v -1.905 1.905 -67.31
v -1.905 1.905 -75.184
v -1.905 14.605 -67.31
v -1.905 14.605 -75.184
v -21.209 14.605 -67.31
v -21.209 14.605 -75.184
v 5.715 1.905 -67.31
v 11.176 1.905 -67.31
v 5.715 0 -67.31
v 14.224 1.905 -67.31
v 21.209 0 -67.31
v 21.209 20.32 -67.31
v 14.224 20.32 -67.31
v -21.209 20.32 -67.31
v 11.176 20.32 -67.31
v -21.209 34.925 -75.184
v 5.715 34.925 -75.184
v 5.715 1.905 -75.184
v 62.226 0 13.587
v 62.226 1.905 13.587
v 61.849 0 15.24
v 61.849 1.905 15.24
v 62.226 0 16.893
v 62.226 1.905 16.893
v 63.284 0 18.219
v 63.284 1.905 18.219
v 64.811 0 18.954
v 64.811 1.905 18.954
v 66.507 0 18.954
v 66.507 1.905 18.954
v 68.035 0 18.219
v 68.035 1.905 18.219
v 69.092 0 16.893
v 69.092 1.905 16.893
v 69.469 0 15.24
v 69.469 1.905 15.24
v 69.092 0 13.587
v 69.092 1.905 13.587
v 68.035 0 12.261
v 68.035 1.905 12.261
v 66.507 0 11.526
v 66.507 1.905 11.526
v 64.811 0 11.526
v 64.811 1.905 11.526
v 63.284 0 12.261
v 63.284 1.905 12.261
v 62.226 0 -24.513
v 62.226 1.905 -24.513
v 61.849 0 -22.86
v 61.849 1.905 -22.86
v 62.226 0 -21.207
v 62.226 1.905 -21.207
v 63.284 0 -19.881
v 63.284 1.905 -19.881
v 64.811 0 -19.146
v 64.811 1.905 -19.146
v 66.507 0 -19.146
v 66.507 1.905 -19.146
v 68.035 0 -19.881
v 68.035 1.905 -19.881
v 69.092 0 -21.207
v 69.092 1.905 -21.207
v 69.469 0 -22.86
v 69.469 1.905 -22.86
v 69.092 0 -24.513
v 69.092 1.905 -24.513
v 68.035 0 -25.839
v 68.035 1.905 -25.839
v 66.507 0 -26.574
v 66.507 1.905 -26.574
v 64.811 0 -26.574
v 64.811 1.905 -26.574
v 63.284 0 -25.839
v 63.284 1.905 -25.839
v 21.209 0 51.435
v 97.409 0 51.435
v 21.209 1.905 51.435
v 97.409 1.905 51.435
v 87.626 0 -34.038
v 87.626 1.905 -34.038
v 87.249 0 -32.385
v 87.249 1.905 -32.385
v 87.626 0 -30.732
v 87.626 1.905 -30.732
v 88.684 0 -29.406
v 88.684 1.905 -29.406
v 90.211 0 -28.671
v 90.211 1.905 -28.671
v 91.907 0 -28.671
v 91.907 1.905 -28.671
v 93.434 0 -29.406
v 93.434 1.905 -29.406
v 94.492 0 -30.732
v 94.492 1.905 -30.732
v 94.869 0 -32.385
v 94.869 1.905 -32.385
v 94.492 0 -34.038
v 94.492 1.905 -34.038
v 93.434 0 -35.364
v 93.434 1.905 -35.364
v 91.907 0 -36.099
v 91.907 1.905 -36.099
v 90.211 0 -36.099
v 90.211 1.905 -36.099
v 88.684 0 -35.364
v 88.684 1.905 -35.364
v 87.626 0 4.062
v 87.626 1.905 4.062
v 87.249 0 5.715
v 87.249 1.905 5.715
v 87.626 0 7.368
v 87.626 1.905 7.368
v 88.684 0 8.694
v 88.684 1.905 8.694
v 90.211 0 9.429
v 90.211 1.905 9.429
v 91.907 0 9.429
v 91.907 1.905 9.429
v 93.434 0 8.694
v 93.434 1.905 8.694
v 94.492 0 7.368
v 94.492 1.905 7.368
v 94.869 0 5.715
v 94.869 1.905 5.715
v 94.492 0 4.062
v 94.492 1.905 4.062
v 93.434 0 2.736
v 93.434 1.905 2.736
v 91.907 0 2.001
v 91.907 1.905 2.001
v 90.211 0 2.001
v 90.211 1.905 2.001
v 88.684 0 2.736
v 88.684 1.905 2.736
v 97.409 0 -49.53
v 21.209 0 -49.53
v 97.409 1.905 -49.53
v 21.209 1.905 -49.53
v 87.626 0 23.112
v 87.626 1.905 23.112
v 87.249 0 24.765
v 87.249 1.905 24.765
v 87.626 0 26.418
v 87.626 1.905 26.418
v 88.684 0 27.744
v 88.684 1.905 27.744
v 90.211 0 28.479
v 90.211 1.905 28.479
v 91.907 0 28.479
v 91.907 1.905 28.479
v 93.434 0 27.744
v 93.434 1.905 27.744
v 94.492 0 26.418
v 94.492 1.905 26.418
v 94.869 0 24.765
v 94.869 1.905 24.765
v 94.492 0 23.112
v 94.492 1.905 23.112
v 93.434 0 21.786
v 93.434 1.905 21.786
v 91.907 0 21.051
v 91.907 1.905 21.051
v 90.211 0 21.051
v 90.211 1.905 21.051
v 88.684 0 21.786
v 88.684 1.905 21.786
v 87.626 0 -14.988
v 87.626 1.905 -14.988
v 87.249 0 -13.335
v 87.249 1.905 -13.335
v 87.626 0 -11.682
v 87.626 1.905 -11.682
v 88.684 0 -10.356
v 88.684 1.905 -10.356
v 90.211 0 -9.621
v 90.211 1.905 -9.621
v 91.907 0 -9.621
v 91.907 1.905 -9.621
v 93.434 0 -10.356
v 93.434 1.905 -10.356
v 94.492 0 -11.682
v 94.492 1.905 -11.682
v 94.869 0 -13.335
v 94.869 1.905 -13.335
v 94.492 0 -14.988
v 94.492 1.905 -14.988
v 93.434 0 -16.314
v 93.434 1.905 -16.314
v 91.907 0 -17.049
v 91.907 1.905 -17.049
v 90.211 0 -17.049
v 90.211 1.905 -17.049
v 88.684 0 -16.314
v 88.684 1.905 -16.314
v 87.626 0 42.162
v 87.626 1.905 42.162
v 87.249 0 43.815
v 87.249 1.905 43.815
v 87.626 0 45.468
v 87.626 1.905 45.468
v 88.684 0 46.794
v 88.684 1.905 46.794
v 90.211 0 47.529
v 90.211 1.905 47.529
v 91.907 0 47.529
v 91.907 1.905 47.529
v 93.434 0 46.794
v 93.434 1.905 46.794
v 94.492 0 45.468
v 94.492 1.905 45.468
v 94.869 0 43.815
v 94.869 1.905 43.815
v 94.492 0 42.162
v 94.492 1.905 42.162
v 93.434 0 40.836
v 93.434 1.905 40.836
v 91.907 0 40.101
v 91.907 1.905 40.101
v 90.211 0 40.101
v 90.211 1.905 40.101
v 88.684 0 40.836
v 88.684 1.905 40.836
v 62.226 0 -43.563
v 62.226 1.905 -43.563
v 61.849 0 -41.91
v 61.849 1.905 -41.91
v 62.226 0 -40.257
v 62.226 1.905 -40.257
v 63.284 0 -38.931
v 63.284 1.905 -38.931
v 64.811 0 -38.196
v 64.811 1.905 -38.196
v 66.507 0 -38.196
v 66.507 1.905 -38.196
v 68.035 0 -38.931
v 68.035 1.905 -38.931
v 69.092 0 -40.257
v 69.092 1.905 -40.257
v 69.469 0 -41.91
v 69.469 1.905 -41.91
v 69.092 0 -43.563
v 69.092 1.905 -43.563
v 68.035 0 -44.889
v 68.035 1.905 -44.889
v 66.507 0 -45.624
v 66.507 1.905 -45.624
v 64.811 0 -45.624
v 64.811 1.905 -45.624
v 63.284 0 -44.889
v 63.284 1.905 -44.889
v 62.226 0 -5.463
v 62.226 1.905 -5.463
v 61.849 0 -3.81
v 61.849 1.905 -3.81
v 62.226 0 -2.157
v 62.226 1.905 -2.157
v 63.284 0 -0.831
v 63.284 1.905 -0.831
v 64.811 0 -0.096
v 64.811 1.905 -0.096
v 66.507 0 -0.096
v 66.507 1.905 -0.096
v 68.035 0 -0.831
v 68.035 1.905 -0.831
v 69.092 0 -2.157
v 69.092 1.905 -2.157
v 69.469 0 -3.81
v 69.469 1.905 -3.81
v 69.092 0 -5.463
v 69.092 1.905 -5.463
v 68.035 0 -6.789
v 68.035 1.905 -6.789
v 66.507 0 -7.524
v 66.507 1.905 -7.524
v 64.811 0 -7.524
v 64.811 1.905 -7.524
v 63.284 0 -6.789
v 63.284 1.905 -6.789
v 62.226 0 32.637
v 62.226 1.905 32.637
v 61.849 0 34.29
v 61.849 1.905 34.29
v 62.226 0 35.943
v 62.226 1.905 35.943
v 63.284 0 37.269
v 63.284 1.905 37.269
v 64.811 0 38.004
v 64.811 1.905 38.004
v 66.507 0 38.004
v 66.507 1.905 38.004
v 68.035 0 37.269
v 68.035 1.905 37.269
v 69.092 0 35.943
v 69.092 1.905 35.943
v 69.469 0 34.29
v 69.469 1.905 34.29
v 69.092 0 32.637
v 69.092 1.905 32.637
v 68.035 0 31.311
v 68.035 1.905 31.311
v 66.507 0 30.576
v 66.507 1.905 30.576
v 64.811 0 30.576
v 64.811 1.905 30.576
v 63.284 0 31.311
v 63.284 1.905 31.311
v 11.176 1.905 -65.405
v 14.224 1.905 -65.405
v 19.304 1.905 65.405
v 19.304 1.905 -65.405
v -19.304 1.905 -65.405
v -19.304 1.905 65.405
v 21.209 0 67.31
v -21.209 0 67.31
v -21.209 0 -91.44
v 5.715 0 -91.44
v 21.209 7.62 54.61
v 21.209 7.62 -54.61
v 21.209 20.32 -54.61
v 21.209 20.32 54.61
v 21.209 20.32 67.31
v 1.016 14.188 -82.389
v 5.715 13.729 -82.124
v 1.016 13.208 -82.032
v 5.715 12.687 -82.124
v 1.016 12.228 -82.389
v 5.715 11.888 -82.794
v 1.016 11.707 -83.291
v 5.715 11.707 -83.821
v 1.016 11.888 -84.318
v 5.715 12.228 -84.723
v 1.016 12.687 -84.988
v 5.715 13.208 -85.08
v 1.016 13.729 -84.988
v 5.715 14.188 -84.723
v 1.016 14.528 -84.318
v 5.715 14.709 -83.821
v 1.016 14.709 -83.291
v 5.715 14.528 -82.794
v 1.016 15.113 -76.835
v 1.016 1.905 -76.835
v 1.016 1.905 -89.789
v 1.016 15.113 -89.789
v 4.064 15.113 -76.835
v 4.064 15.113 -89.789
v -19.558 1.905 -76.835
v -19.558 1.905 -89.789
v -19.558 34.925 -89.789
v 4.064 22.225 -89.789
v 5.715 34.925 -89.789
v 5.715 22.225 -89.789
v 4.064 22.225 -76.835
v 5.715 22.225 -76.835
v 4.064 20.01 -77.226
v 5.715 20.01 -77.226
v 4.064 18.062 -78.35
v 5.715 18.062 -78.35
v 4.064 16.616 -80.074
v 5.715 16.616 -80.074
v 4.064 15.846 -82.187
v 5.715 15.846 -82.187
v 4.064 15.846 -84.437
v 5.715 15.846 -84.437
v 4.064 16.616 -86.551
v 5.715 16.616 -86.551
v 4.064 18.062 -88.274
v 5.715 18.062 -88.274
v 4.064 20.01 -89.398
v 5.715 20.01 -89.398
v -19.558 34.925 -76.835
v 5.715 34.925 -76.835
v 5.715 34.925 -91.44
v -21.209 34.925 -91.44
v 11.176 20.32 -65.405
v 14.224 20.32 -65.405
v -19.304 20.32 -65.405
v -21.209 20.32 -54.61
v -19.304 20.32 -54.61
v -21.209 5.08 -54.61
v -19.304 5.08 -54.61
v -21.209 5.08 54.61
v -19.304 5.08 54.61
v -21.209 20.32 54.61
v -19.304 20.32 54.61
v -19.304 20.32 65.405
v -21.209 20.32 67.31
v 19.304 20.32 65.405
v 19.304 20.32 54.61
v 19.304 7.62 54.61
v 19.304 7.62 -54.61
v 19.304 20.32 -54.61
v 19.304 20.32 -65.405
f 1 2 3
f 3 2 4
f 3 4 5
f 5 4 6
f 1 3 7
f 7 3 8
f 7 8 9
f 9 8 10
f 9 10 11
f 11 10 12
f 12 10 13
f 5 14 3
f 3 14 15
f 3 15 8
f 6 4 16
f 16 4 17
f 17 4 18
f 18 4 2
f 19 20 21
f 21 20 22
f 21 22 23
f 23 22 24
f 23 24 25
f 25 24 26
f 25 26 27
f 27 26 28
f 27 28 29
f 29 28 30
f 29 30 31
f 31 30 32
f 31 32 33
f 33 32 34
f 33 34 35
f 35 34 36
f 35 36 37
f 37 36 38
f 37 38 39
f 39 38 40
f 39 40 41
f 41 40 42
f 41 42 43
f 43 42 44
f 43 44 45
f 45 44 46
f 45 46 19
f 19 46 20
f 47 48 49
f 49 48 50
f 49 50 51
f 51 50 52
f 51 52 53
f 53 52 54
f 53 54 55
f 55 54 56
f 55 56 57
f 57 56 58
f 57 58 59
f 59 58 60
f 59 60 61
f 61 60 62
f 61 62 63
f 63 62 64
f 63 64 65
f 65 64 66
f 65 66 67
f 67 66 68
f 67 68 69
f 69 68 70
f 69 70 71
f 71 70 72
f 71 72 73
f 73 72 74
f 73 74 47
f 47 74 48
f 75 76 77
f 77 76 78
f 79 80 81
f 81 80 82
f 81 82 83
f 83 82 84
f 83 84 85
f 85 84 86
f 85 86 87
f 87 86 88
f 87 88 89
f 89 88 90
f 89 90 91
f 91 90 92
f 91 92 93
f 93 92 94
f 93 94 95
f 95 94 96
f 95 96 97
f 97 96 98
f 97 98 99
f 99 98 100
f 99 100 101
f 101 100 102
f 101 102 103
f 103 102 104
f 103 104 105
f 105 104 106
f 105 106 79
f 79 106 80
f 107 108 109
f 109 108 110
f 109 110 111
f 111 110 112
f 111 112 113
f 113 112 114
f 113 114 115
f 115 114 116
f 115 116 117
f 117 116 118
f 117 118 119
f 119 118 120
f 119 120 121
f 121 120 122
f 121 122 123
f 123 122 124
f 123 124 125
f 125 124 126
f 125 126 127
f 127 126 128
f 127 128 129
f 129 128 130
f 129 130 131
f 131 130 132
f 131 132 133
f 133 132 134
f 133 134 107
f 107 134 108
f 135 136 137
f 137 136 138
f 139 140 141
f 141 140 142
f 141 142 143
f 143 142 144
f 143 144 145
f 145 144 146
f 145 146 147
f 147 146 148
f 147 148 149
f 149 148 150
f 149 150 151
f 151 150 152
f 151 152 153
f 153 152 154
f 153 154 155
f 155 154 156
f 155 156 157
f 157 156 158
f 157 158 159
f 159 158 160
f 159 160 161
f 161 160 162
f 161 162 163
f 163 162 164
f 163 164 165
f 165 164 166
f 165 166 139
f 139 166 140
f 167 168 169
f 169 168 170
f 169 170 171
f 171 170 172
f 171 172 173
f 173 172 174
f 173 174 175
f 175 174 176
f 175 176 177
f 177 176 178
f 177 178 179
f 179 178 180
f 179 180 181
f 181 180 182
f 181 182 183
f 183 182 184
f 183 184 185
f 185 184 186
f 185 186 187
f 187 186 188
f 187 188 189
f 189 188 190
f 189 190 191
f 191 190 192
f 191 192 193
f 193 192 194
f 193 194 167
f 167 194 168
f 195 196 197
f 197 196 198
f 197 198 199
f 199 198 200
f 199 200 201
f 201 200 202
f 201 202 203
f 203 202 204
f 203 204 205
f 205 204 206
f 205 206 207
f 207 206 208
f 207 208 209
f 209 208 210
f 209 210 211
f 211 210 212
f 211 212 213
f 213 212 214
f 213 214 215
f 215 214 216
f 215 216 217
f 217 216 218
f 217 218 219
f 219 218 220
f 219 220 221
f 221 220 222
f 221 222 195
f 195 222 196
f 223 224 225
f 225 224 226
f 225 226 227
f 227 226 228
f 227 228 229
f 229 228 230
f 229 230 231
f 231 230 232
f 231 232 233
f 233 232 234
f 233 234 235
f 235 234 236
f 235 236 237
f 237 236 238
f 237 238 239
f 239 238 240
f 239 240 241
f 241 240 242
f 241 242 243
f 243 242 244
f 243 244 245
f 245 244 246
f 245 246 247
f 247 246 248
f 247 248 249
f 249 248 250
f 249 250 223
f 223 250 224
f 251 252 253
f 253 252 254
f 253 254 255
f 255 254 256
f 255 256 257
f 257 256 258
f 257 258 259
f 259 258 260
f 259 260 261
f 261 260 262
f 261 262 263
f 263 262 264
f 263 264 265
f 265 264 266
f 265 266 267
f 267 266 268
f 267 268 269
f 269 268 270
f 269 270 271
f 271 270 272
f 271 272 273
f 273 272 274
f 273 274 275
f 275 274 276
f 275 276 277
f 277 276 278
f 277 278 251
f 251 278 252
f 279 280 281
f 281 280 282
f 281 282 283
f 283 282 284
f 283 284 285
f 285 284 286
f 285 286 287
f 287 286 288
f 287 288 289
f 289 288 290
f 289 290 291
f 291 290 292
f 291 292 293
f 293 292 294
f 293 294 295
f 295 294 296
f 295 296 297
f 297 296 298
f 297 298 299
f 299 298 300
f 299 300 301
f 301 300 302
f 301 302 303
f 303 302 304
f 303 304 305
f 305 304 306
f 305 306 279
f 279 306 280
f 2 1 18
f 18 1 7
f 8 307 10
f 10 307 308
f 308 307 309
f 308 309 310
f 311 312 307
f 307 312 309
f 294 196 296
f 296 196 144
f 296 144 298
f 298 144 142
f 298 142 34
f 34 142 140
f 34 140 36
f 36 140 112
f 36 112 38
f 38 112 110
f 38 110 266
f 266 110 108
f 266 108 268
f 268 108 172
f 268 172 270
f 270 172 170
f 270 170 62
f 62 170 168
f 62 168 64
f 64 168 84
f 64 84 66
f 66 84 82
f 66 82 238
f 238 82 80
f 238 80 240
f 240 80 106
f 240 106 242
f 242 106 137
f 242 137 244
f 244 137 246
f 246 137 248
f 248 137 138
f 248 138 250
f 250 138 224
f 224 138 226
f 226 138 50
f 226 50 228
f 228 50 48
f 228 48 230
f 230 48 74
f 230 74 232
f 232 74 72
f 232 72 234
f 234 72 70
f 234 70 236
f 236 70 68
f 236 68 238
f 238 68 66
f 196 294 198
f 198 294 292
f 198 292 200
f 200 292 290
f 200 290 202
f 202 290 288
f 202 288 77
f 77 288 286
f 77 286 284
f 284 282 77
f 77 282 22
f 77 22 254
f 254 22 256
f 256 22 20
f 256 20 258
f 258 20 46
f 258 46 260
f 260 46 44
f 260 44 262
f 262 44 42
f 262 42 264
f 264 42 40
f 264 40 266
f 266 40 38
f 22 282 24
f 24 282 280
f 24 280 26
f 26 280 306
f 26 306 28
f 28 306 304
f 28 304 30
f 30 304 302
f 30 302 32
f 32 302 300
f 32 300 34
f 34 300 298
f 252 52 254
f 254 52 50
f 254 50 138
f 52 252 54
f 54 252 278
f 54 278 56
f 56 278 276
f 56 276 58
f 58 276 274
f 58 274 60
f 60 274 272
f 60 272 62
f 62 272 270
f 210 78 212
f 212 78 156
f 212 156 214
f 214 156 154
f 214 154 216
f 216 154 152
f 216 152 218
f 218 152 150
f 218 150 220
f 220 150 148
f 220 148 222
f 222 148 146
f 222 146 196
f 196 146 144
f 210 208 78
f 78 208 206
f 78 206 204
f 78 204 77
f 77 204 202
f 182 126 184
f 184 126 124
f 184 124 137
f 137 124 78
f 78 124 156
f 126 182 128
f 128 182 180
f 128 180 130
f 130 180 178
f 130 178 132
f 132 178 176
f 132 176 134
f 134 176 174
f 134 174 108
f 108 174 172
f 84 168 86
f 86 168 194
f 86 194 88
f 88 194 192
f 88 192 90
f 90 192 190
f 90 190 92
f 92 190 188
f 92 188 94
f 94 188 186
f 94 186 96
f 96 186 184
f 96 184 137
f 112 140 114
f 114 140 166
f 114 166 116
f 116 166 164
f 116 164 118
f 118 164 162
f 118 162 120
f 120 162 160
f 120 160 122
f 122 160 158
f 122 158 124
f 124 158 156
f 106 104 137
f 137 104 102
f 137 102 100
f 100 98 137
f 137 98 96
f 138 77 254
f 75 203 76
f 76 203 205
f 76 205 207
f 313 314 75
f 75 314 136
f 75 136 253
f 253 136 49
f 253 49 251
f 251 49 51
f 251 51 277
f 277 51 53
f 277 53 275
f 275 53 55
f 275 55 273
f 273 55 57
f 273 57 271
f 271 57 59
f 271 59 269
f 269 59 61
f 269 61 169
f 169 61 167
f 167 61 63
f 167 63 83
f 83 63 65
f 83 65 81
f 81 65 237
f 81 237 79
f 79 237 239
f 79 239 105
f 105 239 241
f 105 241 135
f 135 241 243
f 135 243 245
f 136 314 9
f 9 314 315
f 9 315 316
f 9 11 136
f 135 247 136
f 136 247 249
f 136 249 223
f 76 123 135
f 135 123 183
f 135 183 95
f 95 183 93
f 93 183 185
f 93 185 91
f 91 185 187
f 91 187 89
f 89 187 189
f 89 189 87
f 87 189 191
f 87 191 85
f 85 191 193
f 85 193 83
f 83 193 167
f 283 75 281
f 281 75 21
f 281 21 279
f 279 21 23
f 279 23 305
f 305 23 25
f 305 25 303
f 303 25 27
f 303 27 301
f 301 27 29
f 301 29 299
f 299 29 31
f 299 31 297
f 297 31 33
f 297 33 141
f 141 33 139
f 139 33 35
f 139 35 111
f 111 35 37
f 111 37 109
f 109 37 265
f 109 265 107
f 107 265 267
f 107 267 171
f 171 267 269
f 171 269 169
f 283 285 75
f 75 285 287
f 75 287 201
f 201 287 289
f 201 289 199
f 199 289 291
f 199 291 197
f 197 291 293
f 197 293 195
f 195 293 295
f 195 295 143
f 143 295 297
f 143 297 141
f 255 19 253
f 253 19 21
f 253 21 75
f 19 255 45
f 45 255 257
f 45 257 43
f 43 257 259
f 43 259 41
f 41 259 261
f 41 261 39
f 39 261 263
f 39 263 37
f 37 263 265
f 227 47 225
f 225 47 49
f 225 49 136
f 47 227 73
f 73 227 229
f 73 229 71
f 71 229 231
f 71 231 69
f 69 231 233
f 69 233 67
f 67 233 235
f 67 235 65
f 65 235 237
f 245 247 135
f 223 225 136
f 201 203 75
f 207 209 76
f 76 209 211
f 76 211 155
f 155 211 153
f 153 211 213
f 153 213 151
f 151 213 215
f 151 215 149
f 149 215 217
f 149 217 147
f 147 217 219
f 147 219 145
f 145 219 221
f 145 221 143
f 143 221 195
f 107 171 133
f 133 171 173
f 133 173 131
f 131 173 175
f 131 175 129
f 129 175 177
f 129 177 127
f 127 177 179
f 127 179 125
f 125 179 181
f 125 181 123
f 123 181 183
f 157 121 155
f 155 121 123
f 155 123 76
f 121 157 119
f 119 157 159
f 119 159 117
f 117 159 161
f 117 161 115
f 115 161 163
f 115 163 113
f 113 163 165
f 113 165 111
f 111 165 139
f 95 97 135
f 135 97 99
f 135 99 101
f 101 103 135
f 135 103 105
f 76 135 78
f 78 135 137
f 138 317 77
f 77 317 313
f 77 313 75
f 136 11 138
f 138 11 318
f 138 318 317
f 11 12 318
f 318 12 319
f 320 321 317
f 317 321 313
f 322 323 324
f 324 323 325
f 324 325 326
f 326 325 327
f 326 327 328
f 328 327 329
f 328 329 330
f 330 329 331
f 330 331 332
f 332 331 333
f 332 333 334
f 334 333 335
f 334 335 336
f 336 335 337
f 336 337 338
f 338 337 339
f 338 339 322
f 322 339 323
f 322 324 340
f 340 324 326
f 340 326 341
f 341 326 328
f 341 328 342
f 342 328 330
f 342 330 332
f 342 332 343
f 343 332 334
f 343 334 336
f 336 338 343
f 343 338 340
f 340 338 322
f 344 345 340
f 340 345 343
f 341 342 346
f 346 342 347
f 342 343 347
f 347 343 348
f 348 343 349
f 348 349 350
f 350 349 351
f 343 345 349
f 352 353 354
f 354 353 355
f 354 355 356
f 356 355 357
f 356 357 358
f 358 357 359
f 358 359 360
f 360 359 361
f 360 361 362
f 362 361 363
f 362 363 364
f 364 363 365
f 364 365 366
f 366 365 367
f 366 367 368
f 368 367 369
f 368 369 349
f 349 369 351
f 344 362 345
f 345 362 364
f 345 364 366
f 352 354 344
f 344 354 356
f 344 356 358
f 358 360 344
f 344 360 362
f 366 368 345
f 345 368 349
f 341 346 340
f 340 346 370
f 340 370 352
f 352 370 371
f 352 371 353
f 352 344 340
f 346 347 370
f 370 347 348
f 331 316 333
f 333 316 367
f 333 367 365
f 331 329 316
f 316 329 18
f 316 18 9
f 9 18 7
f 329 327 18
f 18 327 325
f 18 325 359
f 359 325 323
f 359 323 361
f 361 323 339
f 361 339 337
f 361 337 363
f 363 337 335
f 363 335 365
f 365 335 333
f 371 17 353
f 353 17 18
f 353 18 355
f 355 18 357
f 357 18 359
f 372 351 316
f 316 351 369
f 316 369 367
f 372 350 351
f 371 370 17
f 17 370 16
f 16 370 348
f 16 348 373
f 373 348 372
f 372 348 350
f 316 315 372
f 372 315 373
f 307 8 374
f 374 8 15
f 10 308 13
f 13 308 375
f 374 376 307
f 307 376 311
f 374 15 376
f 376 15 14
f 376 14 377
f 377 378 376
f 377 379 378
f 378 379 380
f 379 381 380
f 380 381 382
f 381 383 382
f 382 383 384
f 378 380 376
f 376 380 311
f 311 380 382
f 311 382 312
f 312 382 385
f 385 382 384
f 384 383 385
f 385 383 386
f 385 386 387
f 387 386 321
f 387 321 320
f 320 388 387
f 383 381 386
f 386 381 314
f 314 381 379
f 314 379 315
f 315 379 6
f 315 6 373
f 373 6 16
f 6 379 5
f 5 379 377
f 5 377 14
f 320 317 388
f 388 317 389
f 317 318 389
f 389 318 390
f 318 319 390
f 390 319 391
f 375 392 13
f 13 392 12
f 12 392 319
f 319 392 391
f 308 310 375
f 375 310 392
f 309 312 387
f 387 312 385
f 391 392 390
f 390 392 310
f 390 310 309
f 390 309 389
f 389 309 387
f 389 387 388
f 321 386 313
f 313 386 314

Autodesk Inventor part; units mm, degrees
ref_plane "YZ Plane" through (0, 0, 0) normal (1, 0, 0) x (0, 1, 0)
ref_plane "XZ Plane" through (0, 0, 0) normal (0, 1, 0) x (-1, 0, 0)
ref_plane "XY Plane" through (0, 0, 0) normal (0, 0, 1) x (1, 0, 0)
sketch "Sketch1" plane through (0, 0, 0) normal (0, 1, 0) x (-1, 0, 0)
  line L0 (19.304, 65.405) -> (-19.304, 65.405)
  line L1 (-19.304, 65.405) -> (-19.304, -65.405)
  line L2 (-19.304, -65.405) -> (19.304, -65.405)
  line L3 (19.304, -65.405) -> (19.304, 65.405)
  line L4 (19.304, 65.405) -> (-19.304, -65.405) construction
  line L5 (-19.304, 65.405) -> (19.304, -65.405) construction
  line L6 (21.209, 67.31) -> (-21.209, 67.31)
  line L7 (-21.209, 67.31) -> (-21.209, -67.31)
  line L8 (-21.209, -67.31) -> (21.209, -67.31)
  line L9 (21.209, -67.31) -> (21.209, 67.31)
  point P0 (0, 0)
  dimension "d0" = 38.608
  dimension "d1" = 130.81
  dimension "d2" = 1.905
extrude "Extrusion1" add sketch "Sketch1" along normal blind 20.32
extrude "Extrusion2" add sketch "Sketch1" along normal blind 1.905 contours L3 L2 L1 L0
sketch "Sketch2" plane through (21.209, 0, 67.31) normal (1, 0, 0) x (0, 0, -1)
  line L0 (12.7, 20.32) -> (121.92, 20.32)
  line L1 (121.92, 20.32) -> (121.92, 7.62)
  line L2 (121.92, 7.62) -> (12.7, 7.62)
  line L3 (12.7, 7.62) -> (12.7, 20.32)
  line L4 (0, 0) -> (0, 20.32) projected
  line L5 (134.62, 0) -> (134.62, 20.32) projected
  line L6 (0, 20.32) -> (134.62, 20.32) projected
  line L7 (0, 0) -> (134.62, 0) projected
  point P0 (67.31, 0)
  dimension "d7" = 12.7
  dimension "d8" = 12.7
  dimension "d9" = 7.62
extrude "Extrusion3" cut sketch "Sketch2" against normal blind 1.905 contours L0 L1 L2 L3
sketch "Sketch3" plane through (-21.209, 0, -67.31) normal (-1, 0, 0) x (0, 0, 1)
  line L0 (12.7, 20.32) -> (121.92, 20.32)
  line L1 (121.92, 20.32) -> (121.92, 5.08)
  line L2 (121.92, 5.08) -> (12.7, 5.08)
  line L3 (12.7, 5.08) -> (12.7, 20.32)
  line L4 (0, 20.32) -> (134.62, 20.32) projected
  line L5 (0, 0) -> (0, 20.32) projected
  line L6 (134.62, 0) -> (134.62, 20.32) projected
  line L7 (0, 0) -> (134.62, 0) projected
  point P0 (67.31, 0)
  dimension "d12" = 12.7
  dimension "d13" = 12.7
  dimension "d14" = 5.08
extrude "Extrusion4" cut sketch "Sketch3" against normal blind 1.905 contours L0 L1 L2 L3
sketch "Sketch4" plane through (0, 20.32, 0) normal (0, 1, 0) x (1, 0, 0)
  line L0 (21.209, 67.31) -> (-21.209, 67.31) projected
  line L1 (-19.304, 65.405) -> (19.304, 65.405) projected
  line L2 (14.224, 67.31) -> (11.176, 67.31)
  line L3 (11.176, 67.31) -> (11.176, 65.405)
  line L4 (11.176, 65.405) -> (14.224, 65.405)
  line L5 (14.224, 65.405) -> (14.224, 67.31)
  line L6 (19.304, 65.405) -> (19.304, 54.61) projected
  line L7 (-19.304, 54.61) -> (-19.304, 65.405) projected
  point P0 (0, 0)
  dimension "d17" = 5.08
  dimension "d18" = 30.48
extrude "Extrusion5" cut sketch "Sketch4" against normal up to surface (18.415 mm away)
sketch "Sketch5" plane through (21.209, 0, -67.31) normal (0, 0, -1) x (-1, 0, 0)
  line L0 (0, 0) -> (42.418, 0) projected
  line L1 (0, 0) -> (42.418, 0)
  line L2 (42.418, 0) -> (42.418, 1.905)
  line L3 (42.418, 1.905) -> (0, 1.905)
  line L4 (0, 1.905) -> (0, 0)
  line L5 (10.033, 1.905) -> (6.985, 1.905) projected
  line L6 (42.418, 0) -> (42.418, 20.32) projected
  point P0 (21.209, 0)
extrude "Extrusion6" add sketch "Sketch5" along normal blind 24.13
sketch "Sketch6" plane through (0, 1.905, 0) normal (0, 1, 0) x (1, 0, 0)
  line L0 (-19.558, 76.835) -> (4.064, 76.835)
  line L1 (4.064, 76.835) -> (4.064, 89.789)
  line L2 (4.064, 89.789) -> (-19.558, 89.789)
  line L3 (-19.558, 89.789) -> (-19.558, 76.835)
  line L4 (19.304, 65.405) -> (19.304, 54.61) projected
  line L5 (11.176, 67.31) -> (-21.209, 67.31) projected
  line L6 (-21.209, 75.184) -> (5.715, 75.184)
  line L7 (5.715, 75.184) -> (5.715, 91.44)
  line L8 (5.715, 91.44) -> (-21.209, 91.44)
  line L9 (-21.209, 91.44) -> (-21.209, 75.184)
  line L10 (-21.209, 91.44) -> (21.209, 91.44) projected
  line L11 (-21.209, 67.31) -> (-21.209, 91.44) projected
  line L12 (-19.304, 65.405) -> (11.176, 65.405) projected
  point P0 (0, 0)
  dimension "d24" = 12.954
  dimension "d26" = 23.622
  dimension "d32" = 11.43
extrude "Extrusion7" add sketch "Sketch6" along normal blind 33.02
sketch "Sketch8" plane through (4.064, 1.905, -89.789) normal (-1, 0, 0) x (0, 0, 1)
  circle A0 centre (6.477, 20.32) radius 6.477
  line L0 (0, 0) -> (0, 33.02) projected
  line L1 (12.954, 0) -> (12.954, 33.02) projected
  line L2 (0, 0) -> (12.954, 0) projected
  line L3 (12.954, 20.32) -> (12.954, 33.02)
  line L4 (0, 33.02) -> (0, 20.32)
  line L5 (12.954, 33.02) -> (0, 33.02)
  line L6 (12.954, 20.32) -> (12.954, 33.02)
  line L7 (0, 33.02) -> (0, 20.32)
  point P0 (89.789, -1.905)
  dimension "d29" = 20.32
extrude "Extrusion8" cut sketch "Sketch8" against normal blind 33.02 contours A0 | A0 L0 L5 L1
sketch "Sketch10" plane through (4.064, 1.905, -89.789) normal (-1, 0, 0) x (0, 0, 1)
  line L0 (-1.651, 0) -> (14.605, 0) projected
  line L1 (-1.651, 0) -> (-1.651, 33.02) projected
  line L2 (14.605, 0) -> (-1.651, 0)
  line L3 (-1.651, 0) -> (-1.651, 13.208)
  line L4 (-1.651, 13.208) -> (14.605, 13.208)
  line L5 (14.605, 13.208) -> (14.605, 0)
  arc A0 (0, 20.32) -> (12.954, 20.32) centre (6.477, 20.32) ccw projected
  point P0 (89.789, -1.905)
  point P1 (6.477, 13.843)
  point P2 (6.477, 13.208)
  dimension "d37" = 0.635
extrude "Extrusion10" add sketch "Sketch10" along normal blind 3.048
sketch "Sketch9" plane through (5.715, 1.905, -75.184) normal (1, 0, 0) x (0, 0, -1)
  arc A0 (1.651, 20.32) -> (14.605, 20.32) centre (8.128, 20.32) ccw projected
  circle A1 centre (8.372, 11.303) radius 1.524
  point P0 (-75.184, -1.905)
  point P1 (8.128, 13.843)
  dimension "d33" = 2.54
  dimension "d34" = 3.048
extrude "Extrusion9" cut sketch "Sketch9" against normal up to surface (25.273 mm away)
sketch "Sketch11" plane through (21.209, 0, 67.31) normal (1, 0, 0) x (0, 0, -1)
  line L0 (134.62, 1.905) -> (158.75, 1.905) projected
  line L1 (0, 0) -> (158.75, 0)
  line L2 (158.75, 0) -> (158.75, 1.905)
  line L3 (158.75, 1.905) -> (0, 1.905)
  line L4 (0, 1.905) -> (0, 0)
  point P0 (67.31, 0)
extrude "Extrusion11" add sketch "Sketch11" along normal blind 76.2
sketch "Sketch12" plane through (0, 1.905, 0) normal (0, 1, 0) x (1, 0, 0)
  circle A0 centre (91.059, -43.815) radius 3.81
  line L0 (21.209, 54.61) -> (21.209, -54.61) projected
  line L1 (19.304, -65.405) -> (-19.304, -65.405) projected
  line L2 (21.209, -51.435) -> (97.409, -51.435)
  line L3 (97.409, 91.44) -> (97.409, -67.31) projected
  line L4 (97.409, -67.31) -> (21.209, -67.31)
  line L5 (21.209, -67.31) -> (21.209, -51.435)
  line L6 (97.409, -36.195) -> (21.209, -36.195)
  line L7 (-21.209, 91.44) -> (97.409, 91.44) projected
  line L8 (21.209, 91.44) -> (97.409, 91.44)
  line L9 (97.409, 91.44) -> (97.409, -36.195)
  line L10 (21.209, -36.195) -> (97.409, -36.195)
  line L11 (97.409, -36.195) -> (97.409, 91.44)
  line L12 (97.409, 91.44) -> (21.209, 91.44)
  line L13 (21.209, 91.44) -> (21.209, -36.195)
  line L14 (5.715, 91.44) -> (97.409, 91.44)
  line L15 (97.409, 91.44) -> (97.409, 67.31)
  line L16 (5.715, 67.31) -> (5.715, 91.44)
  line L17 (5.715, 89.789) -> (5.715, 91.44) projected
  line L18 (21.209, 67.31) -> (14.224, 67.31) projected
  circle A1 centre (65.659, -34.29) radius 3.81
  circle A2 centre (91.059, -24.765) radius 3.81
  circle A3 centre (91.059, -5.715) radius 3.81
  circle A4 centre (91.059, 13.335) radius 3.81
  circle A5 centre (91.059, 32.385) radius 3.81
  circle A6 centre (65.659, -15.24) radius 3.81
  circle A7 centre (65.659, 3.81) radius 3.81
  circle A8 centre (65.659, 22.86) radius 3.81
  circle A9 centre (65.659, 41.91) radius 3.81
  line L19 (21.209, 91.44) -> (97.409, 91.44)
  line L20 (97.409, 91.44) -> (97.409, 49.53)
  line L21 (97.409, 49.53) -> (21.209, 49.53)
  line L22 (21.209, 49.53) -> (21.209, 91.44)
  line L23 (5.715, 67.31) -> (21.209, 67.31)
  line L24 (21.209, 67.31) -> (21.209, 91.44)
  line L25 (21.209, 91.44) -> (5.715, 91.44)
  line L26 (5.715, 91.44) -> (5.715, 67.31)
  point P0 (0, 0)
  point P1 (97.409, -36.195)
  point P2 (21.209, -54.61)
  point P3 (5.715, 90.6145)
  point P4 (21.209, 49.53)
  dimension "d42" = 7.62
  dimension "d44" = 21.59
  dimension "d45" = 7.62
  dimension "d46" = 7.62
  dimension "d59" = 7.62
  dimension "d76" = 69.85
  dimension "d79" = 19.05
  dimension "d84" = 9.525
  dimension "d87" = 19.05
  dimension "d92" = 25.4
  dimension "d93" = 7.62
extrude "Extrusion12" cut sketch "Sketch12" against normal blind 57.15 contours A0 | L13 L7 L3 L21 L0 | L18 L23 L16 L7 L13 | L2 L3 L4 L5 L0 | A1 L6 | L6 A1 | A2 | A3 | A4 | A5 | A6 | A7 | A8 | A9
sketch "Sketch13" plane through (0, 1.905, 0) normal (0, 1, 0) x (1, 0, 0)
  line L0 (11.176, 67.31) -> (-21.209, 67.31) projected
  line L1 (-21.209, 75.184) -> (5.715, 75.184) projected
  line L2 (-13.589, 67.31) -> (-1.905, 67.31)
  line L3 (-1.905, 67.31) -> (-1.905, 75.184)
  line L4 (-1.905, 75.184) -> (-13.589, 75.184)
  line L5 (-13.589, 75.184) -> (-13.589, 67.31)
  line L6 (-21.209, 67.31) -> (-21.209, 75.184) projected
  line L7 (5.715, 91.44) -> (5.715, 75.184) projected
  point P0 (0, 0)
  point P1 (-21.209, 71.247)
  point P2 (-13.589, 71.247)
  point P3 (5.715, 67.31)
  point P4 (-1.905, 67.31)
  dimension "d49" = 7.62
  dimension "d50" = 7.62
extrude "Extrusion13" add sketch "Sketch13" along normal blind 12.7
properties part number "HarmonicaFrame"
